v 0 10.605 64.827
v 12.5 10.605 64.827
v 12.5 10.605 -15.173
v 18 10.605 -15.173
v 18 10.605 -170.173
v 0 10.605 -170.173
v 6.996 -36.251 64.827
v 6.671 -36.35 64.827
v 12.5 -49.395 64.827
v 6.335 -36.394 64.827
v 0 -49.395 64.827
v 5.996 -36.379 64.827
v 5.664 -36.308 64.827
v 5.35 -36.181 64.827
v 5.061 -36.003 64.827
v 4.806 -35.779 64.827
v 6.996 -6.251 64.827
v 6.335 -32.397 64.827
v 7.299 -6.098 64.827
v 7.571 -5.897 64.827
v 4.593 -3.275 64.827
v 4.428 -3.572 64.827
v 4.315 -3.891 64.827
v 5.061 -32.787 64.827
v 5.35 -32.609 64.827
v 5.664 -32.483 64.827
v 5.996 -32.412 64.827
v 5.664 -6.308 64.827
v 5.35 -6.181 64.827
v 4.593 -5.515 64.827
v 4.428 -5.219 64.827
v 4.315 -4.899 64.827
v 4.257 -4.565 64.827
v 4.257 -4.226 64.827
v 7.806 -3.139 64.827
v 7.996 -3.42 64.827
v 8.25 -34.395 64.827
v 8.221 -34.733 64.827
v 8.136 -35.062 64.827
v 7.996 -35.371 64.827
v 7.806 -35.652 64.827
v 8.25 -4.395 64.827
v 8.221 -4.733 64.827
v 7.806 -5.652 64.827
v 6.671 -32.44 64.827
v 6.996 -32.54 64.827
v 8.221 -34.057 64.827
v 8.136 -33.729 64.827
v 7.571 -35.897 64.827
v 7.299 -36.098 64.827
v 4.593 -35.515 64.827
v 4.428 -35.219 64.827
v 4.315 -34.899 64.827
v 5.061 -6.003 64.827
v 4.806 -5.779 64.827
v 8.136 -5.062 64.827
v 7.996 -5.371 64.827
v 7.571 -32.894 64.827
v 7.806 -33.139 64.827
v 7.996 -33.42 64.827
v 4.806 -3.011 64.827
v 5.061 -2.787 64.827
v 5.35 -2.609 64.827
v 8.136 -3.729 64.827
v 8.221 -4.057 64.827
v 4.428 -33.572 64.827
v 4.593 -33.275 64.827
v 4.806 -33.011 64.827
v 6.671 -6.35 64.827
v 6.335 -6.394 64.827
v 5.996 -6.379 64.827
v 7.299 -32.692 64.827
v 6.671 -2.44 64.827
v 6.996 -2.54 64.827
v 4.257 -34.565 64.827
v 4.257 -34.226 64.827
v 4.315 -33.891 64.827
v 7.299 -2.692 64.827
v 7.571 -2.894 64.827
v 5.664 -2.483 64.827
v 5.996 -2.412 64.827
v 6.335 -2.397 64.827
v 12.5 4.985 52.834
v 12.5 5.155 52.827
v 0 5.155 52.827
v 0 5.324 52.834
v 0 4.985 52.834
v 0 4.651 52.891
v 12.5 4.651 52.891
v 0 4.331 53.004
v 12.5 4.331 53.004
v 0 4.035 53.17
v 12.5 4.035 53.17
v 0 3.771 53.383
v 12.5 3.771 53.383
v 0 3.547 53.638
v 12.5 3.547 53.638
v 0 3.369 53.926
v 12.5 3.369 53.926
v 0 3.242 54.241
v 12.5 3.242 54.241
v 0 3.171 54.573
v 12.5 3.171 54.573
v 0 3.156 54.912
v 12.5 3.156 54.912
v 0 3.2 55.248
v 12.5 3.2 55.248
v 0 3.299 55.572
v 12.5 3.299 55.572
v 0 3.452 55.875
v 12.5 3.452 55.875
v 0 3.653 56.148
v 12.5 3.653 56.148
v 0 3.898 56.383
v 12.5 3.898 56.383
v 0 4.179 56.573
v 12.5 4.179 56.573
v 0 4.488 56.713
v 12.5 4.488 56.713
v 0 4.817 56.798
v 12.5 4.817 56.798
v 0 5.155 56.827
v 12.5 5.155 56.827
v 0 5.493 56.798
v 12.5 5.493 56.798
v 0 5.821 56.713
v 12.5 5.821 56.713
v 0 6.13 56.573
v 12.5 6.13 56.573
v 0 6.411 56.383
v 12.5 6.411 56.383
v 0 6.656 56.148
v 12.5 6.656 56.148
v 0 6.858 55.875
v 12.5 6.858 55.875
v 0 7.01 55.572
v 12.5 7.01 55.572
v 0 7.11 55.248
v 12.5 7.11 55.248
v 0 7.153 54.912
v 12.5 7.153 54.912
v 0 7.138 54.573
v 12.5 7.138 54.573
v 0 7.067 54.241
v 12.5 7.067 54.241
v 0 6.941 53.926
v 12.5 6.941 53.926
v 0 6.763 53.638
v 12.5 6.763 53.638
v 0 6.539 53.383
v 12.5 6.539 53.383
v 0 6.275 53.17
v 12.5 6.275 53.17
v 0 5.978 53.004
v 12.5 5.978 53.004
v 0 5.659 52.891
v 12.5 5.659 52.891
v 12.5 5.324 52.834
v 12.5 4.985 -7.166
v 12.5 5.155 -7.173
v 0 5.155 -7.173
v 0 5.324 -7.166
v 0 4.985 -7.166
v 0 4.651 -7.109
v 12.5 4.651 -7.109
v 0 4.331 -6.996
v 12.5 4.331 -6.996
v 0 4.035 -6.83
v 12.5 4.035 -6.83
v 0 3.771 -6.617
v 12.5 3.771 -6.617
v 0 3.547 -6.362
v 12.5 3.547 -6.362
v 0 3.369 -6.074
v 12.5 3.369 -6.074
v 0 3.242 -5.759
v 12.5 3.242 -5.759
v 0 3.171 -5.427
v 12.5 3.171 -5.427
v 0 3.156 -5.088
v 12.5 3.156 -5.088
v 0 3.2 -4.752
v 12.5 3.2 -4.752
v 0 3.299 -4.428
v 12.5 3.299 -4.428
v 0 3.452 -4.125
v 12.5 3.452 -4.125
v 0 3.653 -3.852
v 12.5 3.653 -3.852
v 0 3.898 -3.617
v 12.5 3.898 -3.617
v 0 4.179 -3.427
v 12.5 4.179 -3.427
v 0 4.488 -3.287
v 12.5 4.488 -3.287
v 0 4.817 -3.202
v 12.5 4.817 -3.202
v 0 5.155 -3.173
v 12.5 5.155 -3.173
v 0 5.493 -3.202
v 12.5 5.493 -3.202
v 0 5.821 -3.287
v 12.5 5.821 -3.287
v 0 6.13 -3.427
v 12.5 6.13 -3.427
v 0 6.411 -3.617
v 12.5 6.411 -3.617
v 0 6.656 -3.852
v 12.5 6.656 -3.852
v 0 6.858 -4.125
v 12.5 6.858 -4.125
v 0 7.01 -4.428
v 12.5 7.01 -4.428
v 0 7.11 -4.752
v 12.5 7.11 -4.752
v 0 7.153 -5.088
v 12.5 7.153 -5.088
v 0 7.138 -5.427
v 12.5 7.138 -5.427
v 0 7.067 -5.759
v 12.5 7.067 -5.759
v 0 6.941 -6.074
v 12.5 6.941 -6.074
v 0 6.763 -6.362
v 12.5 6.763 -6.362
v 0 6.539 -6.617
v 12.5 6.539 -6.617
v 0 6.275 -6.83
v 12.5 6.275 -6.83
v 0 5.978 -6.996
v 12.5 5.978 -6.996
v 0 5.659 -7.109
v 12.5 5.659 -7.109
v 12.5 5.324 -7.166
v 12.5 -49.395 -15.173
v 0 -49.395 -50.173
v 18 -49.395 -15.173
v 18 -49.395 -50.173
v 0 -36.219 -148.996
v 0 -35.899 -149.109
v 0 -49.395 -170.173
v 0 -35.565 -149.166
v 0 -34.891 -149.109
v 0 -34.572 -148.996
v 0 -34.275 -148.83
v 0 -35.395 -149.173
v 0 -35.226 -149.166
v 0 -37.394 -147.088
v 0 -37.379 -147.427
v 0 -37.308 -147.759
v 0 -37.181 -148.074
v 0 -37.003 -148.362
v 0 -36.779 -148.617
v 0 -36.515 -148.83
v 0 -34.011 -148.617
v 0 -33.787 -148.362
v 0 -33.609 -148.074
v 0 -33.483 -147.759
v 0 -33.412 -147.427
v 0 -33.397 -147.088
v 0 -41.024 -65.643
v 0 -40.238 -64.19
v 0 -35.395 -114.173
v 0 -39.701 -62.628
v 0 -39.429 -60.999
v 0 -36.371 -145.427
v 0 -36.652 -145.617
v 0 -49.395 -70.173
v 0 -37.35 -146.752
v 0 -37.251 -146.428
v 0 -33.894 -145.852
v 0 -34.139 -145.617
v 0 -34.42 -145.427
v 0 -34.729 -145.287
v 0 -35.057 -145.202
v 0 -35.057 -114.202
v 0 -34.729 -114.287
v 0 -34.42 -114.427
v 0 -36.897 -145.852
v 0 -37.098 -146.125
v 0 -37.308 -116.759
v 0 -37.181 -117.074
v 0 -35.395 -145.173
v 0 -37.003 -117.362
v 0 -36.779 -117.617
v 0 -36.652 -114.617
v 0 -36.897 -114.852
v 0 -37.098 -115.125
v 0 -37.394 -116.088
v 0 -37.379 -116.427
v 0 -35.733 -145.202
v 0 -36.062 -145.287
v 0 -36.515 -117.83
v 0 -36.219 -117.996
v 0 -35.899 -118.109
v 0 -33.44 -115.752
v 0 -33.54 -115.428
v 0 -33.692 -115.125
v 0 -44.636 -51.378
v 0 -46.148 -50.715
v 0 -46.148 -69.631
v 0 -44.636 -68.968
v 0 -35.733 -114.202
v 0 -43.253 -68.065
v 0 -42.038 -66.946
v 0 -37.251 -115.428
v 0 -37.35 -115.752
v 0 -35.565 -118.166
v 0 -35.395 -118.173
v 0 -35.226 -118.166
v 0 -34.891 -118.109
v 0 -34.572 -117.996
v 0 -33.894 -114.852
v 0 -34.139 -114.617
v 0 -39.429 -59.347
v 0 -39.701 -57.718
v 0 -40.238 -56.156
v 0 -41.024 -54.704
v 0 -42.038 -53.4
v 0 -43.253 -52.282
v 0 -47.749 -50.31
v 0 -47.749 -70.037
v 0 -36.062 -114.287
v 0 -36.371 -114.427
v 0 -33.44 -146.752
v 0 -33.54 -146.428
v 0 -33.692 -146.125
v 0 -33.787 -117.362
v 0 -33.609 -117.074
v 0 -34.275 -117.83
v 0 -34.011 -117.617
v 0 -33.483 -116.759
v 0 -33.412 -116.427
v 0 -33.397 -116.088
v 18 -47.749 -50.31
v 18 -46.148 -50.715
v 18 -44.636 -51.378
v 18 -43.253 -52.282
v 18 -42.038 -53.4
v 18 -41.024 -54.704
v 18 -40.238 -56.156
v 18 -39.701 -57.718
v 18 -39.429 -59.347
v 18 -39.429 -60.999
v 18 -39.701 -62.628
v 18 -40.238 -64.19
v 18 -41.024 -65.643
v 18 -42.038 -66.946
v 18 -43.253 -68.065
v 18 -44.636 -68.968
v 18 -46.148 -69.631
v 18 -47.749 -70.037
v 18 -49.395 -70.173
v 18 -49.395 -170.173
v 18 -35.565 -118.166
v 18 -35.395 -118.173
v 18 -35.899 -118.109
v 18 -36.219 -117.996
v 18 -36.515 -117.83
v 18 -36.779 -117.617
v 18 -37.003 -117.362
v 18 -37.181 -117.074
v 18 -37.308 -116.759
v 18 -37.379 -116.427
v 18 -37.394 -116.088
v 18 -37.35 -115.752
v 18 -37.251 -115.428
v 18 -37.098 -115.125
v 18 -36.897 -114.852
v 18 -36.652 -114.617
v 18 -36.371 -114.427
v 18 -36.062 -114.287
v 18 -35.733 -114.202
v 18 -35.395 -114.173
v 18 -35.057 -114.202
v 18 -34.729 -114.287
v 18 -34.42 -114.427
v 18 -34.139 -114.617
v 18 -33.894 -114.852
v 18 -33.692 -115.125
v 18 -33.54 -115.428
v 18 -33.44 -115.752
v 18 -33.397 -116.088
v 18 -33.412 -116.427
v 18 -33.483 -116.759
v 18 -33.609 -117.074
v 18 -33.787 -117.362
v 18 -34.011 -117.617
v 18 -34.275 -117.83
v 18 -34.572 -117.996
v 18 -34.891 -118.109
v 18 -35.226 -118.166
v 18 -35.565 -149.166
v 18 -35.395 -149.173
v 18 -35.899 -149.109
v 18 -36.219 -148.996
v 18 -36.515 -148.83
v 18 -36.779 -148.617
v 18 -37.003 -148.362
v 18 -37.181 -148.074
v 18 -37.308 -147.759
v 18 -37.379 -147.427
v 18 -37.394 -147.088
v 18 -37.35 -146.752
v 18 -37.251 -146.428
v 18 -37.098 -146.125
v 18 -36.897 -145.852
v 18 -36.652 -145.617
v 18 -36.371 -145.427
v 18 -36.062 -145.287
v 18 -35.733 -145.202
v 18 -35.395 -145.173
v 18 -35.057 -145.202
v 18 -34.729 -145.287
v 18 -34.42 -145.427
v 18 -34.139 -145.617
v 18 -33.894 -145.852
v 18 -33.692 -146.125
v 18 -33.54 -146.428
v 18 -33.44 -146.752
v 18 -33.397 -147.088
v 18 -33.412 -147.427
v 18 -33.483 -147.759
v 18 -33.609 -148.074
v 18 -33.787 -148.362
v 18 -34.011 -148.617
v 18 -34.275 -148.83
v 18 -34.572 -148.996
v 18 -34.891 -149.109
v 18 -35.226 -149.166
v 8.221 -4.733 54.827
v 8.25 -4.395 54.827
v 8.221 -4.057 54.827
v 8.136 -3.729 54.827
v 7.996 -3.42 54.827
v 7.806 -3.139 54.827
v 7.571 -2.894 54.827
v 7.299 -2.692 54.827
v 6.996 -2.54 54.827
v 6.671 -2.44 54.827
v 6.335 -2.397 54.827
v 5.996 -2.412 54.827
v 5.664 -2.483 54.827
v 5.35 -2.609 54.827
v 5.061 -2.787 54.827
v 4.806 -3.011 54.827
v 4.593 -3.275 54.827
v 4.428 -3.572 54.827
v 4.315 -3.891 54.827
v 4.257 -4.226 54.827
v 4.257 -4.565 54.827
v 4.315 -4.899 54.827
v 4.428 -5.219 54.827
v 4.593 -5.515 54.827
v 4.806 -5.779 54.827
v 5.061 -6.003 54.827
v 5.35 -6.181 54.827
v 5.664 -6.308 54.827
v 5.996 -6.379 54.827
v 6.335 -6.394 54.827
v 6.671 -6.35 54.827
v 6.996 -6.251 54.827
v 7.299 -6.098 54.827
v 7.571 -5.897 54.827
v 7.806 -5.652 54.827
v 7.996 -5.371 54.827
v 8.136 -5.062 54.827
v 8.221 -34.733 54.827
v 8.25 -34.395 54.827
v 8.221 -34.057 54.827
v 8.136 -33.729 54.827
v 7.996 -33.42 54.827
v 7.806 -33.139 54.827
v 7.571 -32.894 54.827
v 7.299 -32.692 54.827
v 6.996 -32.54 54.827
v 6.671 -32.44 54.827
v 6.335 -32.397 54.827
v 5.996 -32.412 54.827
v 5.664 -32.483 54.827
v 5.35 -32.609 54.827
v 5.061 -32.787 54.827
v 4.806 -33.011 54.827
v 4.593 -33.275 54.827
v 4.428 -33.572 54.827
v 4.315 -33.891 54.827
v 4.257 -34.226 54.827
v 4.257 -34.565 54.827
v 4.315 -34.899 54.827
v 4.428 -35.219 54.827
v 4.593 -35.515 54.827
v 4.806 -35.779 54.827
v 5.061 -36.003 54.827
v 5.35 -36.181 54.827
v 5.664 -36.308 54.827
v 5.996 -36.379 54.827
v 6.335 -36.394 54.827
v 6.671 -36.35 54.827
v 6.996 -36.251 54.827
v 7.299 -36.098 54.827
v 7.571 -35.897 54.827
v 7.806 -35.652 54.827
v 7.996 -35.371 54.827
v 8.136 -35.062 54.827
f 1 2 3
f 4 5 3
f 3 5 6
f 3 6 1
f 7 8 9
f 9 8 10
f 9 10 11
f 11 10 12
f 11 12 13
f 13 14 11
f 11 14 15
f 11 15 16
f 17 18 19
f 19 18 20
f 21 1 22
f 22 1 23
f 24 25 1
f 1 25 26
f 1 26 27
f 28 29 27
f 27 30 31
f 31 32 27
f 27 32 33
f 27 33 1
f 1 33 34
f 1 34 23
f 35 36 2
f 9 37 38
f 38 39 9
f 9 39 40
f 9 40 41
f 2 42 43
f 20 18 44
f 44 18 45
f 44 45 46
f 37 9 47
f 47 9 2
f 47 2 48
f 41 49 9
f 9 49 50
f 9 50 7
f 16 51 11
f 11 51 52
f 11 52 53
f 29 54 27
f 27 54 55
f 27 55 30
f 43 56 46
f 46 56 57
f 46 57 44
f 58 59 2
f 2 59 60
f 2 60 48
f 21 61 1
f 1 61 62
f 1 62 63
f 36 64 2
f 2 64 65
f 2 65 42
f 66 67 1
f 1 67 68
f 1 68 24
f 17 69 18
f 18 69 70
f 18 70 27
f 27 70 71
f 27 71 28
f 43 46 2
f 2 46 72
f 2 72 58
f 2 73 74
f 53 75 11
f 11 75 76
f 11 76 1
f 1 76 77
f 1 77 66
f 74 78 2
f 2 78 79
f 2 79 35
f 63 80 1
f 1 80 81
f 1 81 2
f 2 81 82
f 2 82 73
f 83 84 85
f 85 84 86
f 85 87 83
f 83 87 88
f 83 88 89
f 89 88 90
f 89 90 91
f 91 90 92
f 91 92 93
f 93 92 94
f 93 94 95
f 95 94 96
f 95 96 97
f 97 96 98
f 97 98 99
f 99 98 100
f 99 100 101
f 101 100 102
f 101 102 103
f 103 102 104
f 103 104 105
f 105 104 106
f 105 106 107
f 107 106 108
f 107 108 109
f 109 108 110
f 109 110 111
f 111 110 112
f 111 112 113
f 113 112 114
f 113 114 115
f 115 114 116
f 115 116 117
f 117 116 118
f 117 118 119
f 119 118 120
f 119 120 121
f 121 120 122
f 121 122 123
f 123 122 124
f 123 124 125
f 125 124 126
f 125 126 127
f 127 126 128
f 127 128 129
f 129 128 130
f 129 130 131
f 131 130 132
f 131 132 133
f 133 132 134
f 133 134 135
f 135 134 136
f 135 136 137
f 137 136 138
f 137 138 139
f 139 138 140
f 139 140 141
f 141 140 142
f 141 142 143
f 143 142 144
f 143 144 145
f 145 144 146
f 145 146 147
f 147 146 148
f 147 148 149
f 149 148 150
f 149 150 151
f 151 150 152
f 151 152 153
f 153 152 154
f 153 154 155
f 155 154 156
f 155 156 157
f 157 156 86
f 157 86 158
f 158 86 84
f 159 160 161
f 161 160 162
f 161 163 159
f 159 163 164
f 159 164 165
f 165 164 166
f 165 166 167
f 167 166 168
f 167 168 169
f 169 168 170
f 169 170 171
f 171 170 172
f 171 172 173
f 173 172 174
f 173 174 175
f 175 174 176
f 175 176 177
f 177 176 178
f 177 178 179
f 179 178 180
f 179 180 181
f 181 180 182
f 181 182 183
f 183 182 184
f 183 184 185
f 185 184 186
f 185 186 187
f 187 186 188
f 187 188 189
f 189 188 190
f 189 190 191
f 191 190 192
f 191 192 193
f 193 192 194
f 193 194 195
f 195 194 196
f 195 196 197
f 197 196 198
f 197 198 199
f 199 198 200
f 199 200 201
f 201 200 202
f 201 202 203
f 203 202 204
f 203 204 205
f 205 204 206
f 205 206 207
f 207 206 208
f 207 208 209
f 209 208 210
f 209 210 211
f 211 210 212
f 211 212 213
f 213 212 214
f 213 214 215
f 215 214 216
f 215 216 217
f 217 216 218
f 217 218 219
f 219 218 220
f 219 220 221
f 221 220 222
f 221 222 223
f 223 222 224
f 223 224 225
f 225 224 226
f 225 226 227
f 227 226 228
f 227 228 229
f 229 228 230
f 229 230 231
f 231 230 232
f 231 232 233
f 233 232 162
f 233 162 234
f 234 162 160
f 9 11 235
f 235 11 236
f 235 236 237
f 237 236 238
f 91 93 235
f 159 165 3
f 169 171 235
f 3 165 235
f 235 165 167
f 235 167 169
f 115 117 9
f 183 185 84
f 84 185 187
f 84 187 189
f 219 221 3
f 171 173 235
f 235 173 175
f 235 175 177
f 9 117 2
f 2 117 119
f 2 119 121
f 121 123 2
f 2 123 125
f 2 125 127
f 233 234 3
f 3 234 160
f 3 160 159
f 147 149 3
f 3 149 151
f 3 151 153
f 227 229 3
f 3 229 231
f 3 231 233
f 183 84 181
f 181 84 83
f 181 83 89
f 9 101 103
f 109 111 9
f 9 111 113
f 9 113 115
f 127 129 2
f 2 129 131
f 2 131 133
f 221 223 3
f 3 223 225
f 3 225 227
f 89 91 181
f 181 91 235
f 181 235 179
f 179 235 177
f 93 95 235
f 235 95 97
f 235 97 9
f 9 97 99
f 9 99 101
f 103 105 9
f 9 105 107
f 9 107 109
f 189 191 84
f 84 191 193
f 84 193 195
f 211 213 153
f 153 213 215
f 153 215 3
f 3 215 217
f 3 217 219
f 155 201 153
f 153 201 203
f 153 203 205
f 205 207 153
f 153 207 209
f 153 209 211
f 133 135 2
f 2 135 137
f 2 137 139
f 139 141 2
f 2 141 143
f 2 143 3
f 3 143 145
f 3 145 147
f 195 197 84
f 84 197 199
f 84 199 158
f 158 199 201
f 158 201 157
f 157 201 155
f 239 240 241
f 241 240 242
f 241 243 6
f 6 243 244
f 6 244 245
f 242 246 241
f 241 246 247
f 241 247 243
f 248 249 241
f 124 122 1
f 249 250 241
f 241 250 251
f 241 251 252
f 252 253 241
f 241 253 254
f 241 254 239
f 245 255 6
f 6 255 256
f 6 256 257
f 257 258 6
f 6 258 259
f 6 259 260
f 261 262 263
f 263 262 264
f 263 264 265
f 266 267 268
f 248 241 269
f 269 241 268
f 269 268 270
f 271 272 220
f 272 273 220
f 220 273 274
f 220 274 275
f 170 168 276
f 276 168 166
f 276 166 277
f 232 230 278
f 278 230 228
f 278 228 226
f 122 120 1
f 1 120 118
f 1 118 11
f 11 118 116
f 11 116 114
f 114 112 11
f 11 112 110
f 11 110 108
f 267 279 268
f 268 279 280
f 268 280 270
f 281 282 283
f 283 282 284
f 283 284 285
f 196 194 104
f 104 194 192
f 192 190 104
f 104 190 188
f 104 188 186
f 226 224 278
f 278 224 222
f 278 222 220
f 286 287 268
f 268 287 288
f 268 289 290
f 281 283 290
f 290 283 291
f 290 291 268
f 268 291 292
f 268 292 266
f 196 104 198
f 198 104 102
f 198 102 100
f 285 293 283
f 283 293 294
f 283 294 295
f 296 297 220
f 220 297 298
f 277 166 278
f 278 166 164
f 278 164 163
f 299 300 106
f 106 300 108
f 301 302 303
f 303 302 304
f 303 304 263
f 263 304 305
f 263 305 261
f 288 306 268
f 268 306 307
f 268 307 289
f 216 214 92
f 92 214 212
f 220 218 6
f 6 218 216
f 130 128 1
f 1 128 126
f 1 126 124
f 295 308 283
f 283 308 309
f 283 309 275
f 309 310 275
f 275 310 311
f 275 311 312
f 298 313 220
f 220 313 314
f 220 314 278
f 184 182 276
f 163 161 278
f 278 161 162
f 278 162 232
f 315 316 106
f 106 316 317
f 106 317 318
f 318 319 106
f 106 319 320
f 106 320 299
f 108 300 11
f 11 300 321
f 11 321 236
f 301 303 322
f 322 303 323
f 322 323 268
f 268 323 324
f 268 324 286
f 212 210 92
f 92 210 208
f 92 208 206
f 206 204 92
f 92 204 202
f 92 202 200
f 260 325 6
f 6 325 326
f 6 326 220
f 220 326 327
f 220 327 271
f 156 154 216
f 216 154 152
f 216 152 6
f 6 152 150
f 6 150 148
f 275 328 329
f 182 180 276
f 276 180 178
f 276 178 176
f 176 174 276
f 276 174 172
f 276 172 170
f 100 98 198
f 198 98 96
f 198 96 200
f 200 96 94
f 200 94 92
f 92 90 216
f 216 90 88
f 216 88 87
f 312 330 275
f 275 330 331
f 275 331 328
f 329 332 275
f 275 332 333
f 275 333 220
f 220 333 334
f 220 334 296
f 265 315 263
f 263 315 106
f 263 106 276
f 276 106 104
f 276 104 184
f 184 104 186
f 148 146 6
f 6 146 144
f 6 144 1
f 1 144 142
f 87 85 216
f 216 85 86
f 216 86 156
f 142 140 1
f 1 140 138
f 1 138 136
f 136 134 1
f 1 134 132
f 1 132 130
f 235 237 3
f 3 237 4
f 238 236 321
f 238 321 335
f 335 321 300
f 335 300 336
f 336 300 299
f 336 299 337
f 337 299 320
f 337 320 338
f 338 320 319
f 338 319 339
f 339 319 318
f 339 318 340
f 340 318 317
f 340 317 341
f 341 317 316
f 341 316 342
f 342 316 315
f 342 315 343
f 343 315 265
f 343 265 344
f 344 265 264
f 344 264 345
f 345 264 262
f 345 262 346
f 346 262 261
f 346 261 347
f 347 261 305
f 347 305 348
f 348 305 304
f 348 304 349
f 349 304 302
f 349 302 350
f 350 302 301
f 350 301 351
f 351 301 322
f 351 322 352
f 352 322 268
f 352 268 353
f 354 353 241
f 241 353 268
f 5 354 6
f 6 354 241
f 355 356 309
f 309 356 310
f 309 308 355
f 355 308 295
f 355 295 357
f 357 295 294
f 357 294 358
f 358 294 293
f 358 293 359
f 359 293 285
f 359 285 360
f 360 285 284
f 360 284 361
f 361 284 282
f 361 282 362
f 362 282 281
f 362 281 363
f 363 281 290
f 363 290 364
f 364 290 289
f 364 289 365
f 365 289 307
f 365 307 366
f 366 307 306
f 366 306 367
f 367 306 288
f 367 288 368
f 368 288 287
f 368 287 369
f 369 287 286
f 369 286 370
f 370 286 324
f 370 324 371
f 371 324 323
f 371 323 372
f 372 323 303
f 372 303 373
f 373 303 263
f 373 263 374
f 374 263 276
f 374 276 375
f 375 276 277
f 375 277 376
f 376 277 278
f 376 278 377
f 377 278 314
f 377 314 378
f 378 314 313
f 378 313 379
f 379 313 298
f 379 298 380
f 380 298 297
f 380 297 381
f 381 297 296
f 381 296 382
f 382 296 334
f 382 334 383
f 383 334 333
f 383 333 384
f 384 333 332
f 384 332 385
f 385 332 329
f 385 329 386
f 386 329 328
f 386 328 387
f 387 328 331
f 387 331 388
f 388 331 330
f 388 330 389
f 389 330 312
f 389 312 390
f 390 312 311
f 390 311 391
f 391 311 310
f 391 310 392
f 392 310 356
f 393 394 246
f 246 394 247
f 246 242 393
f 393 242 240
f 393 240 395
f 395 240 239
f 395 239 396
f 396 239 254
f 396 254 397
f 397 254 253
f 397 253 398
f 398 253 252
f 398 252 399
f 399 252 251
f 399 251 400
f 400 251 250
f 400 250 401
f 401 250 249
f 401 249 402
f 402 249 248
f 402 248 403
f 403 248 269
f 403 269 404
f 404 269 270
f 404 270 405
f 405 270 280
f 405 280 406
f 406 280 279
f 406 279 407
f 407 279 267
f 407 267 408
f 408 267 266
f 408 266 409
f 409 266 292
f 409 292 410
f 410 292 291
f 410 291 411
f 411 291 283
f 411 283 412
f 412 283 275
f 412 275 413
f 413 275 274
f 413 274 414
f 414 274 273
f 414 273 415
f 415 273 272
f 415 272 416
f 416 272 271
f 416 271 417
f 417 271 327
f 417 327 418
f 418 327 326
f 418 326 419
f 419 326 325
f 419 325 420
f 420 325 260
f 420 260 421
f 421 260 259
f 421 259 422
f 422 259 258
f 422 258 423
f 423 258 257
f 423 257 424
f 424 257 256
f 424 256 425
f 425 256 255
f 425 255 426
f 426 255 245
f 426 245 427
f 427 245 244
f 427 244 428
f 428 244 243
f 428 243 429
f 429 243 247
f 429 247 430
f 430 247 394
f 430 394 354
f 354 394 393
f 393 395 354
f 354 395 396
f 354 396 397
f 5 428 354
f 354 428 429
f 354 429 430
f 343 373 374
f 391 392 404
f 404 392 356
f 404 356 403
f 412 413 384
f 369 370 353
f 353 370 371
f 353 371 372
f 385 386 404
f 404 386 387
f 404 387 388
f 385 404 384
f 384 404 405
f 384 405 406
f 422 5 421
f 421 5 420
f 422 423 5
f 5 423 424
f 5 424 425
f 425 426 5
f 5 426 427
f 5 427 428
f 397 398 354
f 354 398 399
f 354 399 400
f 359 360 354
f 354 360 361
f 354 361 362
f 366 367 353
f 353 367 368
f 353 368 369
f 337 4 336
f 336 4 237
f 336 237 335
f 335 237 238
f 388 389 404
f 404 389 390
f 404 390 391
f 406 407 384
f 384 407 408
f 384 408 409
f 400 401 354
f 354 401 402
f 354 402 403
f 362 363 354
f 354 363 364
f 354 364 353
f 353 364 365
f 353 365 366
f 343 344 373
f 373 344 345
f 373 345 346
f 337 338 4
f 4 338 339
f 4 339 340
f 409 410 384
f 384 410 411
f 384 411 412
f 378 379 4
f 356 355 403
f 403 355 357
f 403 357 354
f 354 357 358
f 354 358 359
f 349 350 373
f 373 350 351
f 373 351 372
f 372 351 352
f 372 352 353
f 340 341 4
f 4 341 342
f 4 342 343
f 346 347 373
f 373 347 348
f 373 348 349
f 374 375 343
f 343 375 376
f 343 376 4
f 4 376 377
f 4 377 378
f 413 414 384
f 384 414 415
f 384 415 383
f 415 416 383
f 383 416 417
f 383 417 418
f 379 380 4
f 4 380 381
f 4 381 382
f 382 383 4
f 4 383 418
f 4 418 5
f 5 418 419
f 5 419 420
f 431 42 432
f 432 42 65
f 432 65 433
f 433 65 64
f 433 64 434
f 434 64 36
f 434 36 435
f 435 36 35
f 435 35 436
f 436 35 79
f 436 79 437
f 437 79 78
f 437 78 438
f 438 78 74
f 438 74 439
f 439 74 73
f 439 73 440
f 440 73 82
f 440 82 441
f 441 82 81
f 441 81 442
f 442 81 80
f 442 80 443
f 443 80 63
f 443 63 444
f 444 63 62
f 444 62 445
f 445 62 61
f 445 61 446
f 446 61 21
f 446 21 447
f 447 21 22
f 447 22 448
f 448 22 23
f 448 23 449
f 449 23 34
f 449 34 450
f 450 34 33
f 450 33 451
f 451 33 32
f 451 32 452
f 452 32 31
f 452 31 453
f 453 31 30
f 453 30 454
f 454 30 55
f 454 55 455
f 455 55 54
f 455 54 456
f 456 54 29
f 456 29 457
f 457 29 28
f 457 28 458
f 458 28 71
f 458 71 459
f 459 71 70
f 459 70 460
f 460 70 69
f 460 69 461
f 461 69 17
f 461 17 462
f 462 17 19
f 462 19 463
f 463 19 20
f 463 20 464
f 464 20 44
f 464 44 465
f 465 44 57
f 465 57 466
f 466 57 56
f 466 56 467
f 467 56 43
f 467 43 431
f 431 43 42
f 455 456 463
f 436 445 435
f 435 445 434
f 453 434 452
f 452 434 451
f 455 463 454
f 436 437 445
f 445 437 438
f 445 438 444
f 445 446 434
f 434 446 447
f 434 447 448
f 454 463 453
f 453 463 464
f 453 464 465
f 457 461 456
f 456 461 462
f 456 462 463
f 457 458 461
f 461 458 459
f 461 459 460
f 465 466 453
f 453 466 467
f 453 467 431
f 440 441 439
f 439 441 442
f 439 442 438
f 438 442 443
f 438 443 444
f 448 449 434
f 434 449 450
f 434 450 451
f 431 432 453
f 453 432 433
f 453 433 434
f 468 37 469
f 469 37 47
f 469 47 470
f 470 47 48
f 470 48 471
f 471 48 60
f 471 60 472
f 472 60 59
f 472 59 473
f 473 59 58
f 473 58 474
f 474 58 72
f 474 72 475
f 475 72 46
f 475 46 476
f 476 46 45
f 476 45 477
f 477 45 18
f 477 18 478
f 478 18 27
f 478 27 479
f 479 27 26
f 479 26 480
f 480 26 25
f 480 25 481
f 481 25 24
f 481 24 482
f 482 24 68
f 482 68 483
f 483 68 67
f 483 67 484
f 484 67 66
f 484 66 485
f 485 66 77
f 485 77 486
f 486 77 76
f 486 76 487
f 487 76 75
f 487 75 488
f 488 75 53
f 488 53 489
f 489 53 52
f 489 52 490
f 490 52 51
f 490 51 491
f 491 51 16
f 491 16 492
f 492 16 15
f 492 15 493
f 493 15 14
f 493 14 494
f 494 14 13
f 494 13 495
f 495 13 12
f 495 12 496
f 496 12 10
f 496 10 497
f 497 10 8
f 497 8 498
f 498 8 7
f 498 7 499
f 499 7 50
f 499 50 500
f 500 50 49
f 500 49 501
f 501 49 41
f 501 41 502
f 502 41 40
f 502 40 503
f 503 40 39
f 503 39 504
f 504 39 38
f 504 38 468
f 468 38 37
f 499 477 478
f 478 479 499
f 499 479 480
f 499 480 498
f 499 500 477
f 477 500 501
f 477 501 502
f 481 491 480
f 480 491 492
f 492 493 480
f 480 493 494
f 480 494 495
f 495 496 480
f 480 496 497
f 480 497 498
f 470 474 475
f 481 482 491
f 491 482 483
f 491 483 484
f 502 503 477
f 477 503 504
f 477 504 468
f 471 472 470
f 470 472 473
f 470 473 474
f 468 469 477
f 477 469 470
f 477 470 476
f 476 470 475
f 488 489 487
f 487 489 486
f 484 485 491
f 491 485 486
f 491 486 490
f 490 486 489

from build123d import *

# Parameters (mm, degrees)
ESQUISSE1_W             = 80
ESQUISSE1_H             = 60
ESQUISSE1_R             = 2
BOSS_EXTRU_2_DEPTH      = 12.5
ESQUISSE1_3_R           = 2
BOSS_EXTRU_3_DEPTH      = 18
ESQUISSE5_R             = 2
ENL_V_MAT_EXTRU_2_DEPTH = 10


with BuildPart() as part:
    # Esquisse1 → Boss.-Extru.2 (new body)
    with BuildSketch(Plane(origin=(0, 0, 0), x_dir=(0, 0, -1), z_dir=(1, 0, 0))):
        with Locations((-24.826777374, -19.395329297)):
            Rectangle(ESQUISSE1_W, ESQUISSE1_H)
        with Locations((-54.826777374, 5.154670703)):
            Circle(ESQUISSE1_R, mode=Mode.SUBTRACT)
        with Locations((5.173222626, 5.154670703)):
            Circle(ESQUISSE1_R, mode=Mode.SUBTRACT)
    extrude(amount=BOSS_EXTRU_2_DEPTH)

    # Esquisse1<3> → Boss.-Extru.3 (add)
    with BuildSketch(Plane(origin=(0, 0, 0), x_dir=(0, 0, -1), z_dir=(1, 0, 0))):
        with BuildLine():
            Line((170.173222626, 10.604670703), (15.173222626, 10.604670703))
            Line((15.173222626, 10.604670703), (15.173222626, -49.395329297))
            Line((15.173222626, -49.395329297), (50.173222626, -49.395329297))
            ThreePointArc((50.173222626, -49.395329297), (60.173222626, -39.395329297), (70.173222626, -49.395329297))
            Line((70.173222626, -49.395329297), (170.173222626, -49.395329297))
            Line((170.173222626, -49.395329297), (170.173222626, 10.604670703))
        make_face()
        with Locations((116.173222626, -35.395329297)):
            Circle(ESQUISSE1_3_R, mode=Mode.SUBTRACT)
        with Locations((147.173222626, -35.395329297)):
            Circle(ESQUISSE1_3_R, mode=Mode.SUBTRACT)
    extrude(amount=BOSS_EXTRU_3_DEPTH)

    # Esquisse5 → Enlèv. mat.-Extru.2 (cut)
    with BuildSketch(Plane.XY.offset(64.826777374)):
        with Locations((6.25, -4.395329297)):
            Circle(ESQUISSE5_R)
        with Locations((6.25, -34.395329297)):
            Circle(ESQUISSE5_R)
    extrude(amount=-ENL_V_MAT_EXTRU_2_DEPTH, mode=Mode.SUBTRACT)


solid = part.part
